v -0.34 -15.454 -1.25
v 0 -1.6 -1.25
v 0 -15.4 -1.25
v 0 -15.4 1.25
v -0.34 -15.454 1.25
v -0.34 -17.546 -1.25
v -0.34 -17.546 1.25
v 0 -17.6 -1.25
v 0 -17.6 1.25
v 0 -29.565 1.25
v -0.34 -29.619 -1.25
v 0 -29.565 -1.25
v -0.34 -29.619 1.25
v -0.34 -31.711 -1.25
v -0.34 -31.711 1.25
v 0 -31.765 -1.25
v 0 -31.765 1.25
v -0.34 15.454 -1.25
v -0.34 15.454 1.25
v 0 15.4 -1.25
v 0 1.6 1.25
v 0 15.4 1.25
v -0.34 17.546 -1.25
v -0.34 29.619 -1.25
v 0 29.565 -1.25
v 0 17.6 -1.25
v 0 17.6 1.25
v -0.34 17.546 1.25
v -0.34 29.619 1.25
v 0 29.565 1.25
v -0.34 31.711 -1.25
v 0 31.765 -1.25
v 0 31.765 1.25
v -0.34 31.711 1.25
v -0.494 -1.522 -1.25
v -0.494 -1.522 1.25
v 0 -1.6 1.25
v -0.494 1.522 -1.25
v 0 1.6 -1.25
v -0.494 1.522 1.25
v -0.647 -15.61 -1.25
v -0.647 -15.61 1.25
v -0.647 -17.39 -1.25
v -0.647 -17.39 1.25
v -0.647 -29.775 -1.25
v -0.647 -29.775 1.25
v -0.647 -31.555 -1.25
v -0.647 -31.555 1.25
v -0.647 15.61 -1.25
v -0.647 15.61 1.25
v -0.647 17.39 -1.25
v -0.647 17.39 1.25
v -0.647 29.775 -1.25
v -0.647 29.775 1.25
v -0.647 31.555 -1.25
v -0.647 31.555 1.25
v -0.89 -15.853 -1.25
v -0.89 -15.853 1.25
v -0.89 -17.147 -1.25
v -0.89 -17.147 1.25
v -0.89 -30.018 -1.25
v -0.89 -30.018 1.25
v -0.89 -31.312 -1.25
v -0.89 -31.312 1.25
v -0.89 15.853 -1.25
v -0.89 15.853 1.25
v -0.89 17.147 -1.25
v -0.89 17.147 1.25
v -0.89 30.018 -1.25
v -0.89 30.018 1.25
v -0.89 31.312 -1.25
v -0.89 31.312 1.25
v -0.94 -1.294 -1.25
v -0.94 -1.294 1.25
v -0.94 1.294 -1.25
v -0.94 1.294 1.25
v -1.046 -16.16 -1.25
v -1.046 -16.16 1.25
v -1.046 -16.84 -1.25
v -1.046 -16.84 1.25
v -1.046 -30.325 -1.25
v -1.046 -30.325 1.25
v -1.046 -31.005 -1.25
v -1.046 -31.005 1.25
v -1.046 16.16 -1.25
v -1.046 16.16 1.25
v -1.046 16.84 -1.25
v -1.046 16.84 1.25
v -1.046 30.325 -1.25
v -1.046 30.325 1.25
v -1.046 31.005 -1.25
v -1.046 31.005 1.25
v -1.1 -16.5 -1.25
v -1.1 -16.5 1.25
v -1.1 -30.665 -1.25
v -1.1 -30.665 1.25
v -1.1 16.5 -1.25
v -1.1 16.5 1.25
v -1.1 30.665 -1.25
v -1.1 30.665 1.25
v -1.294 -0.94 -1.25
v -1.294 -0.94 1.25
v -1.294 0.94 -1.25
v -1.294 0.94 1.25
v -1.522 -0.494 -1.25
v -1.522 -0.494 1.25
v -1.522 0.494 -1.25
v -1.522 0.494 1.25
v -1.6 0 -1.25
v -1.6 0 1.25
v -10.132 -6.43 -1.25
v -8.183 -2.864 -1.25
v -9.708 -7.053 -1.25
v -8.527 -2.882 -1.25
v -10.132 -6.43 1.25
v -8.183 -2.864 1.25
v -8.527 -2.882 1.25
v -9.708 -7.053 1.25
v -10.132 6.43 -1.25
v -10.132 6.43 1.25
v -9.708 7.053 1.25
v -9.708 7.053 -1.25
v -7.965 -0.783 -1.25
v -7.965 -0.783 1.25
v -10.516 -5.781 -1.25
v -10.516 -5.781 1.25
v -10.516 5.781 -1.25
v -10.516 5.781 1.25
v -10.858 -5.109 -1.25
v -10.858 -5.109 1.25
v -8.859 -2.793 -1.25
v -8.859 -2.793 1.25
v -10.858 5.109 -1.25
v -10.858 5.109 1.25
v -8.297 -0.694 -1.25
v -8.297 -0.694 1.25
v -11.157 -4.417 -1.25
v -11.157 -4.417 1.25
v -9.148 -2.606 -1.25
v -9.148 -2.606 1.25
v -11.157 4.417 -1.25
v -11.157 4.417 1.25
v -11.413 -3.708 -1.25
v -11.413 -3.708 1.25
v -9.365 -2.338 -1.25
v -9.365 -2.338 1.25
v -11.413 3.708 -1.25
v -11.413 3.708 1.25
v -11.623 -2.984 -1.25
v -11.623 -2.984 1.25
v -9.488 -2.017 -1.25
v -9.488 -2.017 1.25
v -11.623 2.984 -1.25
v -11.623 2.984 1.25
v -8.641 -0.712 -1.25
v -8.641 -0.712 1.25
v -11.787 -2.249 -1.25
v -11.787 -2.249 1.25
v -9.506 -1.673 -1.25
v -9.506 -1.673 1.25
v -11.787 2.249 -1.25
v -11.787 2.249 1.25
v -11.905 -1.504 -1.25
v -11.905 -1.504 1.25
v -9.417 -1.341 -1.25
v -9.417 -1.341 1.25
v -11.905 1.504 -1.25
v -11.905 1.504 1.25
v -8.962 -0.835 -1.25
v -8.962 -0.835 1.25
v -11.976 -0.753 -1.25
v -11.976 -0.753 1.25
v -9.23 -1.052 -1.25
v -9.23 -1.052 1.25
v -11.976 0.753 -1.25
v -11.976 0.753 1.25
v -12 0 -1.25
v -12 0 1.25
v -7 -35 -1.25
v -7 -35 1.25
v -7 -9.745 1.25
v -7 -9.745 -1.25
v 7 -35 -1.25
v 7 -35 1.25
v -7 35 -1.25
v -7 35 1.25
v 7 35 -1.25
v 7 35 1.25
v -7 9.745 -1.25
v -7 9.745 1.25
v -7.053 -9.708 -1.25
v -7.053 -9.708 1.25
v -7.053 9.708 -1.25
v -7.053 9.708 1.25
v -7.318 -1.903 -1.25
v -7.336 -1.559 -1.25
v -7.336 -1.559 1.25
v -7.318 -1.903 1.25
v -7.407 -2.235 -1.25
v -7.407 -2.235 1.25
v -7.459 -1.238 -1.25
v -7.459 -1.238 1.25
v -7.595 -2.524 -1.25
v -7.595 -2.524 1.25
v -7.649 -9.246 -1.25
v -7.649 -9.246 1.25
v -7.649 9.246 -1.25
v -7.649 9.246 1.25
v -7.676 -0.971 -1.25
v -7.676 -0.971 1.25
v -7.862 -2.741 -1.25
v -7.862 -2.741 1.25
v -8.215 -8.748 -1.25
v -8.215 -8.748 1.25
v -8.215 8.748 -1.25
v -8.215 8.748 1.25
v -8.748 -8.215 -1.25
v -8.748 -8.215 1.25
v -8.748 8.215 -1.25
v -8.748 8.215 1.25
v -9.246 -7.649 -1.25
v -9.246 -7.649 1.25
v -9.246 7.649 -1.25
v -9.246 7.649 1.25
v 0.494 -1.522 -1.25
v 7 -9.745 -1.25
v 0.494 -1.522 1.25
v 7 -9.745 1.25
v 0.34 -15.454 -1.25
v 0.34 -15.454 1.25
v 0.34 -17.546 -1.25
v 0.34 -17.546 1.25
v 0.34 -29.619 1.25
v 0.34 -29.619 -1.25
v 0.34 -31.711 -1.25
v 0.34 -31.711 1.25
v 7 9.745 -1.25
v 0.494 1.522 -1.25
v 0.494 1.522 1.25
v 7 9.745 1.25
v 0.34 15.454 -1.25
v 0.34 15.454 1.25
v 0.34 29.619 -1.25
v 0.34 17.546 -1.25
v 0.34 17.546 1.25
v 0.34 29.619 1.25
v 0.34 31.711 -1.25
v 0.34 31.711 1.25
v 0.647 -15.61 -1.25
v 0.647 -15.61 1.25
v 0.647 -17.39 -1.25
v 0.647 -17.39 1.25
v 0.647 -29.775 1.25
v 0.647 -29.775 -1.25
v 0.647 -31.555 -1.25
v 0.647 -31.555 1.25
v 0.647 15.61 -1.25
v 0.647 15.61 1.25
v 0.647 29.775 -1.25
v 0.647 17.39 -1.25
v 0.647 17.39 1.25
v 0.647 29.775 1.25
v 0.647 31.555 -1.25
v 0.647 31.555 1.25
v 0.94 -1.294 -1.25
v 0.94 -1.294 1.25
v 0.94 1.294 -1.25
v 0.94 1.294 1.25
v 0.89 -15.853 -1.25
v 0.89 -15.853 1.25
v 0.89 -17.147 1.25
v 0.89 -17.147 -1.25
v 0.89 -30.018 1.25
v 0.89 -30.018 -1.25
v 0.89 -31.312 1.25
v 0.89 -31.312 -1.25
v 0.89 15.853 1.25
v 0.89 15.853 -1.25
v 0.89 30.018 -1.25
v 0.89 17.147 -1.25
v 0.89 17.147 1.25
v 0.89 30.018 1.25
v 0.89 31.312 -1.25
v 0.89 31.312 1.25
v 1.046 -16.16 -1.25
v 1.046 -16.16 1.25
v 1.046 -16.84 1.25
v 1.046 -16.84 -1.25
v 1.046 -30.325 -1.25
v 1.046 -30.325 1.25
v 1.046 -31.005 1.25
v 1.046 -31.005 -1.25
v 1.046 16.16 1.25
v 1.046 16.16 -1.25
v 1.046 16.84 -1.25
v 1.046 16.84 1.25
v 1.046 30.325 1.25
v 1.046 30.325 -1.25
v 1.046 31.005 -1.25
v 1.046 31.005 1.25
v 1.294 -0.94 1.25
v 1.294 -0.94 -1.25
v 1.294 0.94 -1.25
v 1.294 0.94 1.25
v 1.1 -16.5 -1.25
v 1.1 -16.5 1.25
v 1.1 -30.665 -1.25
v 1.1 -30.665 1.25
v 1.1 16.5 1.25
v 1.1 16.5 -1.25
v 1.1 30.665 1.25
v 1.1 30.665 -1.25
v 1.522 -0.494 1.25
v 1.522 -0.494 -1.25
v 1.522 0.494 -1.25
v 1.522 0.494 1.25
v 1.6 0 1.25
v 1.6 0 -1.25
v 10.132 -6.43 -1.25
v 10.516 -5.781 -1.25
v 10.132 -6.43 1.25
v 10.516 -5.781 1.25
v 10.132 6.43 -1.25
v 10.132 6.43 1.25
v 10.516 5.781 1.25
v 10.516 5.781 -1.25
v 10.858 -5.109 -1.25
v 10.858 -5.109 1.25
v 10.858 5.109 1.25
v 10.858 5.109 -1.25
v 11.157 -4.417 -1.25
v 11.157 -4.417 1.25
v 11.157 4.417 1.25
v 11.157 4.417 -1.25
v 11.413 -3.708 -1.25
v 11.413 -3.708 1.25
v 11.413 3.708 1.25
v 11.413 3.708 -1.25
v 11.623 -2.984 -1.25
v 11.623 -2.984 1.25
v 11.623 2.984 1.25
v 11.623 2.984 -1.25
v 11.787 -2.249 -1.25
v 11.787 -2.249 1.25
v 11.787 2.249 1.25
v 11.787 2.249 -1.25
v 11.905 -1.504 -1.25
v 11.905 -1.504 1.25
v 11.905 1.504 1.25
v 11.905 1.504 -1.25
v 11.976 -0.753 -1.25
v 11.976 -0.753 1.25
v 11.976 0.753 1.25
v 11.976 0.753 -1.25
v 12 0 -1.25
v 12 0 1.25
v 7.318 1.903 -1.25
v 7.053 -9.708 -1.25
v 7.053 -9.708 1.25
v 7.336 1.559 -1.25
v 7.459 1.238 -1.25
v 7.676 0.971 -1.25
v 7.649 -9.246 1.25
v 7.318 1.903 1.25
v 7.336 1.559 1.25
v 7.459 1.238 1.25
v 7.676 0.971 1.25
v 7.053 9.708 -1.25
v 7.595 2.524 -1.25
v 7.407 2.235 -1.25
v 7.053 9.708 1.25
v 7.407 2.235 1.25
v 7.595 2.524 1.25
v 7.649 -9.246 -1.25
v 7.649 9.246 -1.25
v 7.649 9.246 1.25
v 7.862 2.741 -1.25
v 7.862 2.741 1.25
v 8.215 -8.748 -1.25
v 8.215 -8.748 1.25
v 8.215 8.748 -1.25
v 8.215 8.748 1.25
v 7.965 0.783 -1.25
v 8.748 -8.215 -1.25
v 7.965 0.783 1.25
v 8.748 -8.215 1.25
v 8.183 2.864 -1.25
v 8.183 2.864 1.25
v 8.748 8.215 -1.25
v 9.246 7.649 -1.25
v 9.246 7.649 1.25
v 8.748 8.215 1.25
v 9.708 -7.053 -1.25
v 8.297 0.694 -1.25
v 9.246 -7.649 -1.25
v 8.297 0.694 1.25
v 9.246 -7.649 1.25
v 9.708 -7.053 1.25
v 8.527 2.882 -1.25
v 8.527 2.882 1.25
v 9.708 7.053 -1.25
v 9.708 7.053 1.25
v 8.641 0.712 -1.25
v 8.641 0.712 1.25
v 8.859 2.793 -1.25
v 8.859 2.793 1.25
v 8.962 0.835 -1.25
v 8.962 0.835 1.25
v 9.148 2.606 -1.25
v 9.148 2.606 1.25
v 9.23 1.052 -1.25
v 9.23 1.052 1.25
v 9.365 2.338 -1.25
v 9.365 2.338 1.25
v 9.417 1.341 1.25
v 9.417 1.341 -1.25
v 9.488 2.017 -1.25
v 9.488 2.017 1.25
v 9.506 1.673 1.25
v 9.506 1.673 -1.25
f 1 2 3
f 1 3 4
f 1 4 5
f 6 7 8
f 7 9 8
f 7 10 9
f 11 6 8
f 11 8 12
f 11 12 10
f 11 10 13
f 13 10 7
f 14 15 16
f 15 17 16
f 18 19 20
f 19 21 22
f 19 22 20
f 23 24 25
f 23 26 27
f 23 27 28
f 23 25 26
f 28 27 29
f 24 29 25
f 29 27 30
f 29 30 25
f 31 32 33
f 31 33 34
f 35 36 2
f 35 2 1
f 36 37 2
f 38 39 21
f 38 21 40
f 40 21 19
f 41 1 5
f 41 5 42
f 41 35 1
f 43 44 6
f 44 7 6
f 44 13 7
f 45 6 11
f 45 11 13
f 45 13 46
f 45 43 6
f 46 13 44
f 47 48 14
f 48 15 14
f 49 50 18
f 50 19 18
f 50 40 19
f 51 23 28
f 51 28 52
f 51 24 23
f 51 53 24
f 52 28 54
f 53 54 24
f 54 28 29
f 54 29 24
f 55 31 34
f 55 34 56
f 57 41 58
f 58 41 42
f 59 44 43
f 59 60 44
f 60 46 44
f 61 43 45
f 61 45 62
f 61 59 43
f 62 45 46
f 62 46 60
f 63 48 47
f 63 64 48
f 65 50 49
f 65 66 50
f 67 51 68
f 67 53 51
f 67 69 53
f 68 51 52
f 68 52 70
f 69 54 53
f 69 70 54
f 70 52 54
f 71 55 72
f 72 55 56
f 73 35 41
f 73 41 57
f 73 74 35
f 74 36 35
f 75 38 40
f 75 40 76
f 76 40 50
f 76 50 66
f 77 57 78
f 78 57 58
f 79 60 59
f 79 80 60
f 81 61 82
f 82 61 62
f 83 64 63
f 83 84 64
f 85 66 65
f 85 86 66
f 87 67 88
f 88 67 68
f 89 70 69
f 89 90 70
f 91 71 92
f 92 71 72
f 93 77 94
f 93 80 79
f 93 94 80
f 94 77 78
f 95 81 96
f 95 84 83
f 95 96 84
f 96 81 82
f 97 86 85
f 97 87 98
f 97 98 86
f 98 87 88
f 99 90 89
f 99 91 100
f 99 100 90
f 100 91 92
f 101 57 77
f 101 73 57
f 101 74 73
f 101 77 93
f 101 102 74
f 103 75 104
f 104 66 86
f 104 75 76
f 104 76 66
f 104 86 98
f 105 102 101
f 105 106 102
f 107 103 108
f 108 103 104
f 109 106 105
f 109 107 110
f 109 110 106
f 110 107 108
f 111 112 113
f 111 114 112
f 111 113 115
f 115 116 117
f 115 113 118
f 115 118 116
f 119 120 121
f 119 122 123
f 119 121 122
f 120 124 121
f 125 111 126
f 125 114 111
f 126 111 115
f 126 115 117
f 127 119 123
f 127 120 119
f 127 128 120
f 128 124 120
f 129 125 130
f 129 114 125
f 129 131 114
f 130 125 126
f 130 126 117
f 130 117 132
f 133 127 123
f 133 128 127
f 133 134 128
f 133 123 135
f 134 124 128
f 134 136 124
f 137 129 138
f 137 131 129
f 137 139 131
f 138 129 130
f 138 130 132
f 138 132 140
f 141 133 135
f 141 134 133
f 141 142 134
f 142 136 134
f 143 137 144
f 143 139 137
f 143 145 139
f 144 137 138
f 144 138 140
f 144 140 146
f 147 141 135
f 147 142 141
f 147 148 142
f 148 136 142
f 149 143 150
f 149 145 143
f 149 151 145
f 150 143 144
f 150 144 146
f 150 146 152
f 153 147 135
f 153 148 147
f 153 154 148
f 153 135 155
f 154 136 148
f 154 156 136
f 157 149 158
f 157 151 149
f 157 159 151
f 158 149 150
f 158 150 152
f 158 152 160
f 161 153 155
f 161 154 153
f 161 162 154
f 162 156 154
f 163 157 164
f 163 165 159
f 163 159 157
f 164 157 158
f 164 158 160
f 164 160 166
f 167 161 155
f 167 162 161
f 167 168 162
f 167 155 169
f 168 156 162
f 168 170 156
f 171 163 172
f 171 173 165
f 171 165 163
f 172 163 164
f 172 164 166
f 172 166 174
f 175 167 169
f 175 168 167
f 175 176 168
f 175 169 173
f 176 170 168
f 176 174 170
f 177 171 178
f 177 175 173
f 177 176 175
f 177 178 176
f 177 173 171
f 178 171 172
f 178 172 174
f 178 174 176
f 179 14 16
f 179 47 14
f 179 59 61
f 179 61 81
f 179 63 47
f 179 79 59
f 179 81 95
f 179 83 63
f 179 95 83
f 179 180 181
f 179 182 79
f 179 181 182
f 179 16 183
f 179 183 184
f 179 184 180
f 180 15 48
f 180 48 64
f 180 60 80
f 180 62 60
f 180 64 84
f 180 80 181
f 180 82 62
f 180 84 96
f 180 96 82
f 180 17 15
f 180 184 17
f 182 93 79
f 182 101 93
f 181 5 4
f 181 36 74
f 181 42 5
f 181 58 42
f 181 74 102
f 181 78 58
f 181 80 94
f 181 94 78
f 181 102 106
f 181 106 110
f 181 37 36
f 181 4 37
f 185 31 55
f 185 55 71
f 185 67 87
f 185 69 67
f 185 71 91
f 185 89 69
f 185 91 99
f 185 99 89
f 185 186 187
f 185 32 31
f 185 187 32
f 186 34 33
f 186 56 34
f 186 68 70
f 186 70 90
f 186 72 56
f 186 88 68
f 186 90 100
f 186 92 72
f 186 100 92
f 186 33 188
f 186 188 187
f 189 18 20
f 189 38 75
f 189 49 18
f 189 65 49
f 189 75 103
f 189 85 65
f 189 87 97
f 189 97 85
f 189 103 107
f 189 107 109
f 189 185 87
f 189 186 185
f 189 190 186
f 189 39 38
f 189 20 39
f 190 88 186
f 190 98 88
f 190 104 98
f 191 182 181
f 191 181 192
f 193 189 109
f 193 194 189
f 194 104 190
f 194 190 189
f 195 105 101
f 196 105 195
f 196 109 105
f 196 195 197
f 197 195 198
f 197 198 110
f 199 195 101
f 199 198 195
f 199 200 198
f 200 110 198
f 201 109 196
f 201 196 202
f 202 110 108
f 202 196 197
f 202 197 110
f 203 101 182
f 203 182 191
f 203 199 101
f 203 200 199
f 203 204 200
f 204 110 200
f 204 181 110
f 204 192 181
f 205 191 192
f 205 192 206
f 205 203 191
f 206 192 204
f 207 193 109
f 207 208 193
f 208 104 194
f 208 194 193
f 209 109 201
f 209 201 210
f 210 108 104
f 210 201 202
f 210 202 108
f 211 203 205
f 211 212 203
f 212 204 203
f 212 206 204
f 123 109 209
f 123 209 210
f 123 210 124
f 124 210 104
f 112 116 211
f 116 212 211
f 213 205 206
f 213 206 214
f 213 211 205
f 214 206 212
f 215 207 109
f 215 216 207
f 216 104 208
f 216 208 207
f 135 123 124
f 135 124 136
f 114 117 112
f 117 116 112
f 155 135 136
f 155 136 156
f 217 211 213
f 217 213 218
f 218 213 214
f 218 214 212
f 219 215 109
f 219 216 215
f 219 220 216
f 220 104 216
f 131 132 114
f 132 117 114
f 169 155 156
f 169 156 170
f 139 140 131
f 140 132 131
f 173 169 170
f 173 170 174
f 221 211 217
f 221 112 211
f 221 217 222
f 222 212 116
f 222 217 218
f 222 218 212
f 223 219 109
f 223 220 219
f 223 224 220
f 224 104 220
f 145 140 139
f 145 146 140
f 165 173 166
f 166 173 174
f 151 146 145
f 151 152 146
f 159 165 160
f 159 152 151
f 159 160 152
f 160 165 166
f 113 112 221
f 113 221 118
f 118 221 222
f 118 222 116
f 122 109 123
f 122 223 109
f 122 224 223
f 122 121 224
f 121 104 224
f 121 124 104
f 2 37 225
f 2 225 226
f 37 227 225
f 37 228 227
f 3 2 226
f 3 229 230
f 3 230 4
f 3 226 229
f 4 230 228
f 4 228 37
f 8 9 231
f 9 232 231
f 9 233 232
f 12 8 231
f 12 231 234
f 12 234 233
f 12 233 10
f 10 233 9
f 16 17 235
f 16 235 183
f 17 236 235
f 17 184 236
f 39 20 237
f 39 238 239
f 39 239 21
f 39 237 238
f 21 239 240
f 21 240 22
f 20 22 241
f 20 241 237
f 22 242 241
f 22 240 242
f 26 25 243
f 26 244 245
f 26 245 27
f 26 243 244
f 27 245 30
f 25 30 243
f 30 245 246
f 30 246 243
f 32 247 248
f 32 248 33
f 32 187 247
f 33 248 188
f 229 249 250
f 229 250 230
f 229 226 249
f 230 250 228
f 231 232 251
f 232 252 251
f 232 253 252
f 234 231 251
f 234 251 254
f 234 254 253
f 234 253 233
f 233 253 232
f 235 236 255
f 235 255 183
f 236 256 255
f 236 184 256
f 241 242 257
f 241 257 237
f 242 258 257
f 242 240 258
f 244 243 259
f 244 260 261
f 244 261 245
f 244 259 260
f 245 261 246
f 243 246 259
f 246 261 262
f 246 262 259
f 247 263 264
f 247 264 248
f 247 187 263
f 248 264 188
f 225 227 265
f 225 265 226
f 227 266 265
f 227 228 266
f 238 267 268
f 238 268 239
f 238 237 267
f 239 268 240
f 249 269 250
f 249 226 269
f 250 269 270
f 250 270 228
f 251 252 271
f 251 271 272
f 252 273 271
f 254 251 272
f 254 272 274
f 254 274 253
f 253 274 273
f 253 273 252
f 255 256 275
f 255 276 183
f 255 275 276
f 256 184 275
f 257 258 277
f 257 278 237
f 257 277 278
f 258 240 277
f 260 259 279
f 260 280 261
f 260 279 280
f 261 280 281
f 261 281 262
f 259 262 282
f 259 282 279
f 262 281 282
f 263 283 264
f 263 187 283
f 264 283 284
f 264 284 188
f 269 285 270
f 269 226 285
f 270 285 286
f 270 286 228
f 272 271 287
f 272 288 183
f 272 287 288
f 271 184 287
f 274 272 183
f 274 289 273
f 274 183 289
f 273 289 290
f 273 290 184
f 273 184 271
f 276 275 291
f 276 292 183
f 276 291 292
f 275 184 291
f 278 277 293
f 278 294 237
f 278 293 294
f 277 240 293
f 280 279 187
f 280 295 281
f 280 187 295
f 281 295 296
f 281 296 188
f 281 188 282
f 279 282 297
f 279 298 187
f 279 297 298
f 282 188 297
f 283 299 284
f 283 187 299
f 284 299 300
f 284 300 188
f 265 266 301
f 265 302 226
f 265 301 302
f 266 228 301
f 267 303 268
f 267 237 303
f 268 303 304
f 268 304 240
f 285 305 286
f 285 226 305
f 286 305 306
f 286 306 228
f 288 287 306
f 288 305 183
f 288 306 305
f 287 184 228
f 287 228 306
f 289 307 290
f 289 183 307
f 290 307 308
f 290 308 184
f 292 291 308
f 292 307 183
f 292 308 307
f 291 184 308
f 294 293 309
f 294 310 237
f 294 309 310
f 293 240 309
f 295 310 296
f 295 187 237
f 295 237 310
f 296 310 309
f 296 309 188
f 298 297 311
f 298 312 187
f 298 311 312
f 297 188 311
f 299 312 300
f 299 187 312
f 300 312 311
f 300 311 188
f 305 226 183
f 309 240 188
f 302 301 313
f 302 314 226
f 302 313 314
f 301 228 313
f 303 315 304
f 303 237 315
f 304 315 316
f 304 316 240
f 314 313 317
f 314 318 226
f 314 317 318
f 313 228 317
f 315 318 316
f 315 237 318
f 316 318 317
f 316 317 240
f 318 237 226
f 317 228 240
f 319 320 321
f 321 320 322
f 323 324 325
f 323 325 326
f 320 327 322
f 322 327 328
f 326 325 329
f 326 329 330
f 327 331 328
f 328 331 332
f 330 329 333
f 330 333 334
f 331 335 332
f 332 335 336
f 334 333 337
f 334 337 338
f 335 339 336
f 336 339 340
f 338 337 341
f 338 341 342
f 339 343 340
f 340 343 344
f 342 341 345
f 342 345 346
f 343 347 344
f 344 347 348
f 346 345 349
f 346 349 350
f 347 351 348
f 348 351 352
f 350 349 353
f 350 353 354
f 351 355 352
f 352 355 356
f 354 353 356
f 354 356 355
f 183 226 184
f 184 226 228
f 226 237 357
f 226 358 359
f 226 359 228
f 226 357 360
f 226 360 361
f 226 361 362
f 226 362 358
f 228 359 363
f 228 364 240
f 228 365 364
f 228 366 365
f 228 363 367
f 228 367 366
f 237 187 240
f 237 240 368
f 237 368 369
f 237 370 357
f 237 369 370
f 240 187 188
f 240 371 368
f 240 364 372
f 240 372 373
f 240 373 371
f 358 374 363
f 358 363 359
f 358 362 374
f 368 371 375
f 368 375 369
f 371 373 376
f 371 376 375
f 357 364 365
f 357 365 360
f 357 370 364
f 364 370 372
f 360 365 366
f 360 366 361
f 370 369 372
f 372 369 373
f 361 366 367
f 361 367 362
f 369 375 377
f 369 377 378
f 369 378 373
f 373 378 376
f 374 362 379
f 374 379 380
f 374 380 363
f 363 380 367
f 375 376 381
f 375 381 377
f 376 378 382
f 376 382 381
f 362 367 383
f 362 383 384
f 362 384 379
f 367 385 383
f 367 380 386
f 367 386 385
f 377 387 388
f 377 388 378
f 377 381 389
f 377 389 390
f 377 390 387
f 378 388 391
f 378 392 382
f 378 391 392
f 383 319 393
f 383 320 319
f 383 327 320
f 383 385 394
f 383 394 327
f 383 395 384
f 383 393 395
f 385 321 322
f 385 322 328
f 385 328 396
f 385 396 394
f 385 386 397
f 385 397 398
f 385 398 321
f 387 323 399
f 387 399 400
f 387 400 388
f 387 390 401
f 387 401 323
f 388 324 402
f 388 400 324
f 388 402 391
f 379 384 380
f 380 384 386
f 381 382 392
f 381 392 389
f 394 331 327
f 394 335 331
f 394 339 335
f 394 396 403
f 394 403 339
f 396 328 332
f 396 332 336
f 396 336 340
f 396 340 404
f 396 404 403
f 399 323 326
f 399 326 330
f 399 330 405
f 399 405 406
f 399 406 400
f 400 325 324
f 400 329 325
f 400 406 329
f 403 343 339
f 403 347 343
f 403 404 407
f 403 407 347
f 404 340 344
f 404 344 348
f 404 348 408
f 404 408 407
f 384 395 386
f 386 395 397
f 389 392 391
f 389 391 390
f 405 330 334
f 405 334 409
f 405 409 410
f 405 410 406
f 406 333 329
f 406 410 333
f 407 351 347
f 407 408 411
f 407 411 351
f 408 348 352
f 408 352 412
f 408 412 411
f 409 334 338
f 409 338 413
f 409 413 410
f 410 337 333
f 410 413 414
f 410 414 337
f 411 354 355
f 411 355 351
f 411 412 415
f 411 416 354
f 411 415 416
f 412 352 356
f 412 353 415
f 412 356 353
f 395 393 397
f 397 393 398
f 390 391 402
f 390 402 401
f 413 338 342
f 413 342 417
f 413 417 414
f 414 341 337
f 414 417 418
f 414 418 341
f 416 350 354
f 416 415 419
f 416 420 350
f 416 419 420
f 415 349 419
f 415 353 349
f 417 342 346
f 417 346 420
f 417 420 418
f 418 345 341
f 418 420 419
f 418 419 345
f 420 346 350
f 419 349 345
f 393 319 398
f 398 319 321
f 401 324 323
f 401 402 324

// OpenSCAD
// file: ../parameters.scad
global_clearance = 0.5;


//Main tube diameter - hole [mm]
main_tube_outer_diameter = 25.4;
main_tube_inner_diameter = 23.05;

// Nastavení parametrů rotoru

gliding_aggle = 14;         // tenhle úhel by se zřejmě v budoucnu měl počítat z požadované klouzavosti.

rotor_blade_AOA = 1.5;      // nastavení úhlu náběhu rotorového listu
rotor_blade_length = 970;   // délka rotorového listu
rotor_blade_depth = 50;     // hloubka rotorového listu
rotor_height = 180;         // výška otočného kloubu rotoru nad hlavní trubkou vírníku (odhad)
rotor_blades_count = 2;
rotor_delta_angle = 12;


rotor_head_width =  21.4;    //Rozměr 1 v nákresu
pilon_wall_thickness = 4.2;  // Rozměr 2 v nákresu
horizontal_screw_distance = 14.5;   // Rozměr 4 v nákresu
vertical_screw_distance = 12;       // rozměr 5 v nkresu

rotorhead_wall_thickness = 2; // sila tistenych dilu


bearing_outer_diameter = 7.1;    // Rozměr B1 v nákresu s přídavkem na toleranci otvoru
bearing_thickness = 3.1;        // Rozměr B2 v nákresu
bearing_shaft_length = 19.5;    // Rozměr B3 v nákresu


// nastavení parametrů motoru

engine_angle = -8;
engine_diameter = 55;
engine_offset = 55;

engine_screws_radius = 15;
engine_holes_radius = (24 + 44)/4;
engine_shatf_hole_diameter = 13;

// screw length step - minimum difference in length between two types of screws
basic_screw_length = 5;

//Screw diameter and nut for M5 [mm]
M5_screw_diameter=5.5;
M5_head_height = 5;
M5_head_diameter = 13+0.5;
M5_nut_height = 4.5;
M5_nut_diameter = 9.4;
M5_nut_pocket = 8.4;

//Screw diameter and nut for M4 [mm]
M4_screw_diameter=4.5;
M4_screw_head_height = 4;
M4_nut_height = 3.2;
M4_nut_diameter = 8.4;
M4_nut_pocket = 7.5;

//Screw diameter and nut for M3 [mm]
M3_screw_diameter = 3.2;
M3_nut_height = 2.7;
M3_nut_diameter = 6.6;
M3_screw_head_height = 3;
M3_nut_pocket = 5.6;


//Screw diameter and nut for M2,5 [mm]
M2_5_screw_diameter = 2.7;
M2_5_nut_height = 2.3;
M2_5_nut_diameter = 6;
M2_5_nut_pocket = 5.1;

//Screw diameter and nut for M2 [mm]
M2_screw_diameter = 2.2;
M2_nut_height = 1.8;
M2_nut_diameter = 4.5;
M2_nut_pocket = 3.95;



//šroub servo
Servo_screw = 1.5;
Servo_nut_height = 1;
Servo_nut_diameter = 2.7;



//center_of_gravity_position = [main_pilon_position - tan(gliding_aggle)*rotor_height, 0, 0];


////podzvozek

radius_undercarriage = 25;
vzdalenost_x = tan(20) * 131;
vzdalenost_y = (131 - radius_undercarriage)/tan(79);
uhel_y = 90 - 20;
uhel_x = 90 - 79;

maximum_printable_size = 150;


////Pitotova trubice
Pitot_tube_diameter = 4.02 + 1;
Distance_hole_from_tube = 11.92;  //vzdálenost otvoru pro připevnění od samotné trubičky
// main file
//
//
//

include <../parameters.scad>

module 888_1001()
{
    angle_between_blades = 360 / rotor_blades_count;
    rotor_center_plate_size = 30;
    rotor_mounting_plate_size = 20;
    shaft_diameter = M3_screw_diameter;
    thickness = 2.5;
    blade_screws_distance = (16.47+11.86)/2;

    difference () {
        union () {
            cylinder(r = 3+9, h = thickness, center = true, $fn = 100);

            for (i = [0:rotor_blades_count]){
                rotate([0,0, i*angle_between_blades])
                    translate([0, 20, 0])
                        cube([14, 30, thickness], center = true);
            }
        }

        cylinder(d = shaft_diameter, h = 2* thickness, center = true, $fn = 20);


        for (i = [1:rotor_blades_count]){
            rotate([0,0, i*angle_between_blades])
                translate([0, 16.5 + blade_screws_distance/2, 0]) {
                    translate([0, blade_screws_distance/2, 0])
                        cylinder(d = M2_screw_diameter, h = 2* thickness, center = true, $fn = 20);
                    translate([0, -blade_screws_distance/2, 0])
                        cylinder(d = M2_screw_diameter, h = 2* thickness, center = true, $fn = 20);
                }
        }

        rotate([0,0, rotor_delta_angle])
        for (i = [1:rotor_blades_count]){
            rotate([0,0, i*angle_between_blades + angle_between_blades/2])
                translate([0, 3 + 4.5 + M2_screw_diameter/2, 0])
                    cylinder(d = M2_screw_diameter, h = 2* thickness, center = true, $fn = 20);
        }
    }
}

888_1001();
